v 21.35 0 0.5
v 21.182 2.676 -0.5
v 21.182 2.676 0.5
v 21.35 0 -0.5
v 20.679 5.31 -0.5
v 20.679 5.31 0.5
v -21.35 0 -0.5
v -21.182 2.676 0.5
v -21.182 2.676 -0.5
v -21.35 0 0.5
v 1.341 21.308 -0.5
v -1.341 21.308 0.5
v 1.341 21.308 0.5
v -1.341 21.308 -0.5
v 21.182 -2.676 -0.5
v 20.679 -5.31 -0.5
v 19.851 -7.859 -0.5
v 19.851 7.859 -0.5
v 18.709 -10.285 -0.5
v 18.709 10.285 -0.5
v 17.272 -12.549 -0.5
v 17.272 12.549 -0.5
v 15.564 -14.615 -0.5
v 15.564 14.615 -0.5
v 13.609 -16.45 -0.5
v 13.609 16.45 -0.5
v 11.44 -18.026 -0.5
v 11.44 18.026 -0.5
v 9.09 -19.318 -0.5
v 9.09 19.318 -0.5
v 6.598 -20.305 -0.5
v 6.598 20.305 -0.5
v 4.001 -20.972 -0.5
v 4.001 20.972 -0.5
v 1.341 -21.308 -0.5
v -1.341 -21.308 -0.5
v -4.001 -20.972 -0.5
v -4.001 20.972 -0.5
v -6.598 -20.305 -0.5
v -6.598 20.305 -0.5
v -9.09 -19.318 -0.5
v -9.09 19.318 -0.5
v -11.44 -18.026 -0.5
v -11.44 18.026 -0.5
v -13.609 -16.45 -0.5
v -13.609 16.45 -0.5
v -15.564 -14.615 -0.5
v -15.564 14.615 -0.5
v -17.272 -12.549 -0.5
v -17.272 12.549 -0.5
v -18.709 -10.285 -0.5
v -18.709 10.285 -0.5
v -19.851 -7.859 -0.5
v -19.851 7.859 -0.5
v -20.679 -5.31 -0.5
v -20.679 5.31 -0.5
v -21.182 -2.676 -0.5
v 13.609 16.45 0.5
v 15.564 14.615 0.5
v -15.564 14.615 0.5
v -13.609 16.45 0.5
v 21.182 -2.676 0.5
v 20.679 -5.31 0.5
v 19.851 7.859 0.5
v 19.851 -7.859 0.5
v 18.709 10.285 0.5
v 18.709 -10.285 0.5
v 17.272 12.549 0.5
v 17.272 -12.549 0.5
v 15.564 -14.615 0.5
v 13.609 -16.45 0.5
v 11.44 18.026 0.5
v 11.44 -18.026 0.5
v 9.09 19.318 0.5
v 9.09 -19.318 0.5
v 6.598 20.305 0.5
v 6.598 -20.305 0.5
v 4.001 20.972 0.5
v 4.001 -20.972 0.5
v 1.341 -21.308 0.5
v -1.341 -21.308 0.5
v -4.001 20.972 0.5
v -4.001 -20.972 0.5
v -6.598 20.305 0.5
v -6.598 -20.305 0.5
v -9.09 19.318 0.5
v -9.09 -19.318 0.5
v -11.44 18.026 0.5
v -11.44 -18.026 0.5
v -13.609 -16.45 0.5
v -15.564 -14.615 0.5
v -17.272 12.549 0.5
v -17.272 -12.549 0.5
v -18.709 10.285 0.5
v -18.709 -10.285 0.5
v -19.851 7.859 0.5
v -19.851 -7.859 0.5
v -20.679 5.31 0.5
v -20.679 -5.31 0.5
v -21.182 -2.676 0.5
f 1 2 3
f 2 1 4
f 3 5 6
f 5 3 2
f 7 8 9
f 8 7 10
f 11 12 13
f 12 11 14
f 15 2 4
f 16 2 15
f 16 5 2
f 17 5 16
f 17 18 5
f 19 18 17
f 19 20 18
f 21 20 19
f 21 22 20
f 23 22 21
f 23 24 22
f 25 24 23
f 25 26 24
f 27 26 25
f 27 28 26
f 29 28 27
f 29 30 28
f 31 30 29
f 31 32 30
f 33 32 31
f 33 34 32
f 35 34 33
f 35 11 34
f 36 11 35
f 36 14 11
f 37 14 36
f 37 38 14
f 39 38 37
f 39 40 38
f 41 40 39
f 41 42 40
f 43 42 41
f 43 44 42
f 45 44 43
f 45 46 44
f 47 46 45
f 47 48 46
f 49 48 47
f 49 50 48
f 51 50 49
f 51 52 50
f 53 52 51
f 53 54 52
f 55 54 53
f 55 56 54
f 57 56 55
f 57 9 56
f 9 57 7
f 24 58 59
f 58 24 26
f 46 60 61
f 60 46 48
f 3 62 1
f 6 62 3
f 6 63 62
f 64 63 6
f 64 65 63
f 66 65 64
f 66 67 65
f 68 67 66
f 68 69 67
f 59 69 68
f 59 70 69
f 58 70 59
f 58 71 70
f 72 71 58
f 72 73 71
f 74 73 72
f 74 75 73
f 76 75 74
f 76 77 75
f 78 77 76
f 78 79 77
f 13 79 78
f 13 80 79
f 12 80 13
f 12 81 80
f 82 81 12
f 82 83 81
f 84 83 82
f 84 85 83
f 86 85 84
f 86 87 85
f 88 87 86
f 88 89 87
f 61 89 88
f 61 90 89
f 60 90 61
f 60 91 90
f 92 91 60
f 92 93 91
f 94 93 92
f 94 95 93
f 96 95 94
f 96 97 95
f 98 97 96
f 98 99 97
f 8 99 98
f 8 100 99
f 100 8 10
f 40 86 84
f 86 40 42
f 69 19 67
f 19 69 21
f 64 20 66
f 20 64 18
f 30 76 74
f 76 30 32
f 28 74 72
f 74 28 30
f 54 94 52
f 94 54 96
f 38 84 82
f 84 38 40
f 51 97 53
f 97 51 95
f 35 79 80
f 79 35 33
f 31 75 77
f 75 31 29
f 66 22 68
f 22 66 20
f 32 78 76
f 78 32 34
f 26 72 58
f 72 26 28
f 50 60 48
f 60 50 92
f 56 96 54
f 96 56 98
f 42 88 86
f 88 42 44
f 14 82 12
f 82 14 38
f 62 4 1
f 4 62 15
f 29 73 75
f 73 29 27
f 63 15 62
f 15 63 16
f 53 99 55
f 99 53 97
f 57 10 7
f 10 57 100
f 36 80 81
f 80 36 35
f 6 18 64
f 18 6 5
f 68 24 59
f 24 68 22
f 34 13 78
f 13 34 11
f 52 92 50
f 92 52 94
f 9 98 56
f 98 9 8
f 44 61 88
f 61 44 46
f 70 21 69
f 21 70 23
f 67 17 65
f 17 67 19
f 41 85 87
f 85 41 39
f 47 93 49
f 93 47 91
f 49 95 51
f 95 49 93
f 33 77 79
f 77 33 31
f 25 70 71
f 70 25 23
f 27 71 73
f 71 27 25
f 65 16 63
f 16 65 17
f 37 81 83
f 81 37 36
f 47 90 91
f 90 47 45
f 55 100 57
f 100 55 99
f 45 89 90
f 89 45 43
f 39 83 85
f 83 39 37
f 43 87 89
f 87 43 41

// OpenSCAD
$fn = 50;


difference() {
	union() {
		translate(v = [0, 0, -0.5000000000]) {
			cylinder(h = 1, r = 21.3500000000);
		}
	}
	union() {
		translate(v = [0, 0, -100.0000000000]) {
			cylinder(h = 200, r = 0);
		}
	}
}
